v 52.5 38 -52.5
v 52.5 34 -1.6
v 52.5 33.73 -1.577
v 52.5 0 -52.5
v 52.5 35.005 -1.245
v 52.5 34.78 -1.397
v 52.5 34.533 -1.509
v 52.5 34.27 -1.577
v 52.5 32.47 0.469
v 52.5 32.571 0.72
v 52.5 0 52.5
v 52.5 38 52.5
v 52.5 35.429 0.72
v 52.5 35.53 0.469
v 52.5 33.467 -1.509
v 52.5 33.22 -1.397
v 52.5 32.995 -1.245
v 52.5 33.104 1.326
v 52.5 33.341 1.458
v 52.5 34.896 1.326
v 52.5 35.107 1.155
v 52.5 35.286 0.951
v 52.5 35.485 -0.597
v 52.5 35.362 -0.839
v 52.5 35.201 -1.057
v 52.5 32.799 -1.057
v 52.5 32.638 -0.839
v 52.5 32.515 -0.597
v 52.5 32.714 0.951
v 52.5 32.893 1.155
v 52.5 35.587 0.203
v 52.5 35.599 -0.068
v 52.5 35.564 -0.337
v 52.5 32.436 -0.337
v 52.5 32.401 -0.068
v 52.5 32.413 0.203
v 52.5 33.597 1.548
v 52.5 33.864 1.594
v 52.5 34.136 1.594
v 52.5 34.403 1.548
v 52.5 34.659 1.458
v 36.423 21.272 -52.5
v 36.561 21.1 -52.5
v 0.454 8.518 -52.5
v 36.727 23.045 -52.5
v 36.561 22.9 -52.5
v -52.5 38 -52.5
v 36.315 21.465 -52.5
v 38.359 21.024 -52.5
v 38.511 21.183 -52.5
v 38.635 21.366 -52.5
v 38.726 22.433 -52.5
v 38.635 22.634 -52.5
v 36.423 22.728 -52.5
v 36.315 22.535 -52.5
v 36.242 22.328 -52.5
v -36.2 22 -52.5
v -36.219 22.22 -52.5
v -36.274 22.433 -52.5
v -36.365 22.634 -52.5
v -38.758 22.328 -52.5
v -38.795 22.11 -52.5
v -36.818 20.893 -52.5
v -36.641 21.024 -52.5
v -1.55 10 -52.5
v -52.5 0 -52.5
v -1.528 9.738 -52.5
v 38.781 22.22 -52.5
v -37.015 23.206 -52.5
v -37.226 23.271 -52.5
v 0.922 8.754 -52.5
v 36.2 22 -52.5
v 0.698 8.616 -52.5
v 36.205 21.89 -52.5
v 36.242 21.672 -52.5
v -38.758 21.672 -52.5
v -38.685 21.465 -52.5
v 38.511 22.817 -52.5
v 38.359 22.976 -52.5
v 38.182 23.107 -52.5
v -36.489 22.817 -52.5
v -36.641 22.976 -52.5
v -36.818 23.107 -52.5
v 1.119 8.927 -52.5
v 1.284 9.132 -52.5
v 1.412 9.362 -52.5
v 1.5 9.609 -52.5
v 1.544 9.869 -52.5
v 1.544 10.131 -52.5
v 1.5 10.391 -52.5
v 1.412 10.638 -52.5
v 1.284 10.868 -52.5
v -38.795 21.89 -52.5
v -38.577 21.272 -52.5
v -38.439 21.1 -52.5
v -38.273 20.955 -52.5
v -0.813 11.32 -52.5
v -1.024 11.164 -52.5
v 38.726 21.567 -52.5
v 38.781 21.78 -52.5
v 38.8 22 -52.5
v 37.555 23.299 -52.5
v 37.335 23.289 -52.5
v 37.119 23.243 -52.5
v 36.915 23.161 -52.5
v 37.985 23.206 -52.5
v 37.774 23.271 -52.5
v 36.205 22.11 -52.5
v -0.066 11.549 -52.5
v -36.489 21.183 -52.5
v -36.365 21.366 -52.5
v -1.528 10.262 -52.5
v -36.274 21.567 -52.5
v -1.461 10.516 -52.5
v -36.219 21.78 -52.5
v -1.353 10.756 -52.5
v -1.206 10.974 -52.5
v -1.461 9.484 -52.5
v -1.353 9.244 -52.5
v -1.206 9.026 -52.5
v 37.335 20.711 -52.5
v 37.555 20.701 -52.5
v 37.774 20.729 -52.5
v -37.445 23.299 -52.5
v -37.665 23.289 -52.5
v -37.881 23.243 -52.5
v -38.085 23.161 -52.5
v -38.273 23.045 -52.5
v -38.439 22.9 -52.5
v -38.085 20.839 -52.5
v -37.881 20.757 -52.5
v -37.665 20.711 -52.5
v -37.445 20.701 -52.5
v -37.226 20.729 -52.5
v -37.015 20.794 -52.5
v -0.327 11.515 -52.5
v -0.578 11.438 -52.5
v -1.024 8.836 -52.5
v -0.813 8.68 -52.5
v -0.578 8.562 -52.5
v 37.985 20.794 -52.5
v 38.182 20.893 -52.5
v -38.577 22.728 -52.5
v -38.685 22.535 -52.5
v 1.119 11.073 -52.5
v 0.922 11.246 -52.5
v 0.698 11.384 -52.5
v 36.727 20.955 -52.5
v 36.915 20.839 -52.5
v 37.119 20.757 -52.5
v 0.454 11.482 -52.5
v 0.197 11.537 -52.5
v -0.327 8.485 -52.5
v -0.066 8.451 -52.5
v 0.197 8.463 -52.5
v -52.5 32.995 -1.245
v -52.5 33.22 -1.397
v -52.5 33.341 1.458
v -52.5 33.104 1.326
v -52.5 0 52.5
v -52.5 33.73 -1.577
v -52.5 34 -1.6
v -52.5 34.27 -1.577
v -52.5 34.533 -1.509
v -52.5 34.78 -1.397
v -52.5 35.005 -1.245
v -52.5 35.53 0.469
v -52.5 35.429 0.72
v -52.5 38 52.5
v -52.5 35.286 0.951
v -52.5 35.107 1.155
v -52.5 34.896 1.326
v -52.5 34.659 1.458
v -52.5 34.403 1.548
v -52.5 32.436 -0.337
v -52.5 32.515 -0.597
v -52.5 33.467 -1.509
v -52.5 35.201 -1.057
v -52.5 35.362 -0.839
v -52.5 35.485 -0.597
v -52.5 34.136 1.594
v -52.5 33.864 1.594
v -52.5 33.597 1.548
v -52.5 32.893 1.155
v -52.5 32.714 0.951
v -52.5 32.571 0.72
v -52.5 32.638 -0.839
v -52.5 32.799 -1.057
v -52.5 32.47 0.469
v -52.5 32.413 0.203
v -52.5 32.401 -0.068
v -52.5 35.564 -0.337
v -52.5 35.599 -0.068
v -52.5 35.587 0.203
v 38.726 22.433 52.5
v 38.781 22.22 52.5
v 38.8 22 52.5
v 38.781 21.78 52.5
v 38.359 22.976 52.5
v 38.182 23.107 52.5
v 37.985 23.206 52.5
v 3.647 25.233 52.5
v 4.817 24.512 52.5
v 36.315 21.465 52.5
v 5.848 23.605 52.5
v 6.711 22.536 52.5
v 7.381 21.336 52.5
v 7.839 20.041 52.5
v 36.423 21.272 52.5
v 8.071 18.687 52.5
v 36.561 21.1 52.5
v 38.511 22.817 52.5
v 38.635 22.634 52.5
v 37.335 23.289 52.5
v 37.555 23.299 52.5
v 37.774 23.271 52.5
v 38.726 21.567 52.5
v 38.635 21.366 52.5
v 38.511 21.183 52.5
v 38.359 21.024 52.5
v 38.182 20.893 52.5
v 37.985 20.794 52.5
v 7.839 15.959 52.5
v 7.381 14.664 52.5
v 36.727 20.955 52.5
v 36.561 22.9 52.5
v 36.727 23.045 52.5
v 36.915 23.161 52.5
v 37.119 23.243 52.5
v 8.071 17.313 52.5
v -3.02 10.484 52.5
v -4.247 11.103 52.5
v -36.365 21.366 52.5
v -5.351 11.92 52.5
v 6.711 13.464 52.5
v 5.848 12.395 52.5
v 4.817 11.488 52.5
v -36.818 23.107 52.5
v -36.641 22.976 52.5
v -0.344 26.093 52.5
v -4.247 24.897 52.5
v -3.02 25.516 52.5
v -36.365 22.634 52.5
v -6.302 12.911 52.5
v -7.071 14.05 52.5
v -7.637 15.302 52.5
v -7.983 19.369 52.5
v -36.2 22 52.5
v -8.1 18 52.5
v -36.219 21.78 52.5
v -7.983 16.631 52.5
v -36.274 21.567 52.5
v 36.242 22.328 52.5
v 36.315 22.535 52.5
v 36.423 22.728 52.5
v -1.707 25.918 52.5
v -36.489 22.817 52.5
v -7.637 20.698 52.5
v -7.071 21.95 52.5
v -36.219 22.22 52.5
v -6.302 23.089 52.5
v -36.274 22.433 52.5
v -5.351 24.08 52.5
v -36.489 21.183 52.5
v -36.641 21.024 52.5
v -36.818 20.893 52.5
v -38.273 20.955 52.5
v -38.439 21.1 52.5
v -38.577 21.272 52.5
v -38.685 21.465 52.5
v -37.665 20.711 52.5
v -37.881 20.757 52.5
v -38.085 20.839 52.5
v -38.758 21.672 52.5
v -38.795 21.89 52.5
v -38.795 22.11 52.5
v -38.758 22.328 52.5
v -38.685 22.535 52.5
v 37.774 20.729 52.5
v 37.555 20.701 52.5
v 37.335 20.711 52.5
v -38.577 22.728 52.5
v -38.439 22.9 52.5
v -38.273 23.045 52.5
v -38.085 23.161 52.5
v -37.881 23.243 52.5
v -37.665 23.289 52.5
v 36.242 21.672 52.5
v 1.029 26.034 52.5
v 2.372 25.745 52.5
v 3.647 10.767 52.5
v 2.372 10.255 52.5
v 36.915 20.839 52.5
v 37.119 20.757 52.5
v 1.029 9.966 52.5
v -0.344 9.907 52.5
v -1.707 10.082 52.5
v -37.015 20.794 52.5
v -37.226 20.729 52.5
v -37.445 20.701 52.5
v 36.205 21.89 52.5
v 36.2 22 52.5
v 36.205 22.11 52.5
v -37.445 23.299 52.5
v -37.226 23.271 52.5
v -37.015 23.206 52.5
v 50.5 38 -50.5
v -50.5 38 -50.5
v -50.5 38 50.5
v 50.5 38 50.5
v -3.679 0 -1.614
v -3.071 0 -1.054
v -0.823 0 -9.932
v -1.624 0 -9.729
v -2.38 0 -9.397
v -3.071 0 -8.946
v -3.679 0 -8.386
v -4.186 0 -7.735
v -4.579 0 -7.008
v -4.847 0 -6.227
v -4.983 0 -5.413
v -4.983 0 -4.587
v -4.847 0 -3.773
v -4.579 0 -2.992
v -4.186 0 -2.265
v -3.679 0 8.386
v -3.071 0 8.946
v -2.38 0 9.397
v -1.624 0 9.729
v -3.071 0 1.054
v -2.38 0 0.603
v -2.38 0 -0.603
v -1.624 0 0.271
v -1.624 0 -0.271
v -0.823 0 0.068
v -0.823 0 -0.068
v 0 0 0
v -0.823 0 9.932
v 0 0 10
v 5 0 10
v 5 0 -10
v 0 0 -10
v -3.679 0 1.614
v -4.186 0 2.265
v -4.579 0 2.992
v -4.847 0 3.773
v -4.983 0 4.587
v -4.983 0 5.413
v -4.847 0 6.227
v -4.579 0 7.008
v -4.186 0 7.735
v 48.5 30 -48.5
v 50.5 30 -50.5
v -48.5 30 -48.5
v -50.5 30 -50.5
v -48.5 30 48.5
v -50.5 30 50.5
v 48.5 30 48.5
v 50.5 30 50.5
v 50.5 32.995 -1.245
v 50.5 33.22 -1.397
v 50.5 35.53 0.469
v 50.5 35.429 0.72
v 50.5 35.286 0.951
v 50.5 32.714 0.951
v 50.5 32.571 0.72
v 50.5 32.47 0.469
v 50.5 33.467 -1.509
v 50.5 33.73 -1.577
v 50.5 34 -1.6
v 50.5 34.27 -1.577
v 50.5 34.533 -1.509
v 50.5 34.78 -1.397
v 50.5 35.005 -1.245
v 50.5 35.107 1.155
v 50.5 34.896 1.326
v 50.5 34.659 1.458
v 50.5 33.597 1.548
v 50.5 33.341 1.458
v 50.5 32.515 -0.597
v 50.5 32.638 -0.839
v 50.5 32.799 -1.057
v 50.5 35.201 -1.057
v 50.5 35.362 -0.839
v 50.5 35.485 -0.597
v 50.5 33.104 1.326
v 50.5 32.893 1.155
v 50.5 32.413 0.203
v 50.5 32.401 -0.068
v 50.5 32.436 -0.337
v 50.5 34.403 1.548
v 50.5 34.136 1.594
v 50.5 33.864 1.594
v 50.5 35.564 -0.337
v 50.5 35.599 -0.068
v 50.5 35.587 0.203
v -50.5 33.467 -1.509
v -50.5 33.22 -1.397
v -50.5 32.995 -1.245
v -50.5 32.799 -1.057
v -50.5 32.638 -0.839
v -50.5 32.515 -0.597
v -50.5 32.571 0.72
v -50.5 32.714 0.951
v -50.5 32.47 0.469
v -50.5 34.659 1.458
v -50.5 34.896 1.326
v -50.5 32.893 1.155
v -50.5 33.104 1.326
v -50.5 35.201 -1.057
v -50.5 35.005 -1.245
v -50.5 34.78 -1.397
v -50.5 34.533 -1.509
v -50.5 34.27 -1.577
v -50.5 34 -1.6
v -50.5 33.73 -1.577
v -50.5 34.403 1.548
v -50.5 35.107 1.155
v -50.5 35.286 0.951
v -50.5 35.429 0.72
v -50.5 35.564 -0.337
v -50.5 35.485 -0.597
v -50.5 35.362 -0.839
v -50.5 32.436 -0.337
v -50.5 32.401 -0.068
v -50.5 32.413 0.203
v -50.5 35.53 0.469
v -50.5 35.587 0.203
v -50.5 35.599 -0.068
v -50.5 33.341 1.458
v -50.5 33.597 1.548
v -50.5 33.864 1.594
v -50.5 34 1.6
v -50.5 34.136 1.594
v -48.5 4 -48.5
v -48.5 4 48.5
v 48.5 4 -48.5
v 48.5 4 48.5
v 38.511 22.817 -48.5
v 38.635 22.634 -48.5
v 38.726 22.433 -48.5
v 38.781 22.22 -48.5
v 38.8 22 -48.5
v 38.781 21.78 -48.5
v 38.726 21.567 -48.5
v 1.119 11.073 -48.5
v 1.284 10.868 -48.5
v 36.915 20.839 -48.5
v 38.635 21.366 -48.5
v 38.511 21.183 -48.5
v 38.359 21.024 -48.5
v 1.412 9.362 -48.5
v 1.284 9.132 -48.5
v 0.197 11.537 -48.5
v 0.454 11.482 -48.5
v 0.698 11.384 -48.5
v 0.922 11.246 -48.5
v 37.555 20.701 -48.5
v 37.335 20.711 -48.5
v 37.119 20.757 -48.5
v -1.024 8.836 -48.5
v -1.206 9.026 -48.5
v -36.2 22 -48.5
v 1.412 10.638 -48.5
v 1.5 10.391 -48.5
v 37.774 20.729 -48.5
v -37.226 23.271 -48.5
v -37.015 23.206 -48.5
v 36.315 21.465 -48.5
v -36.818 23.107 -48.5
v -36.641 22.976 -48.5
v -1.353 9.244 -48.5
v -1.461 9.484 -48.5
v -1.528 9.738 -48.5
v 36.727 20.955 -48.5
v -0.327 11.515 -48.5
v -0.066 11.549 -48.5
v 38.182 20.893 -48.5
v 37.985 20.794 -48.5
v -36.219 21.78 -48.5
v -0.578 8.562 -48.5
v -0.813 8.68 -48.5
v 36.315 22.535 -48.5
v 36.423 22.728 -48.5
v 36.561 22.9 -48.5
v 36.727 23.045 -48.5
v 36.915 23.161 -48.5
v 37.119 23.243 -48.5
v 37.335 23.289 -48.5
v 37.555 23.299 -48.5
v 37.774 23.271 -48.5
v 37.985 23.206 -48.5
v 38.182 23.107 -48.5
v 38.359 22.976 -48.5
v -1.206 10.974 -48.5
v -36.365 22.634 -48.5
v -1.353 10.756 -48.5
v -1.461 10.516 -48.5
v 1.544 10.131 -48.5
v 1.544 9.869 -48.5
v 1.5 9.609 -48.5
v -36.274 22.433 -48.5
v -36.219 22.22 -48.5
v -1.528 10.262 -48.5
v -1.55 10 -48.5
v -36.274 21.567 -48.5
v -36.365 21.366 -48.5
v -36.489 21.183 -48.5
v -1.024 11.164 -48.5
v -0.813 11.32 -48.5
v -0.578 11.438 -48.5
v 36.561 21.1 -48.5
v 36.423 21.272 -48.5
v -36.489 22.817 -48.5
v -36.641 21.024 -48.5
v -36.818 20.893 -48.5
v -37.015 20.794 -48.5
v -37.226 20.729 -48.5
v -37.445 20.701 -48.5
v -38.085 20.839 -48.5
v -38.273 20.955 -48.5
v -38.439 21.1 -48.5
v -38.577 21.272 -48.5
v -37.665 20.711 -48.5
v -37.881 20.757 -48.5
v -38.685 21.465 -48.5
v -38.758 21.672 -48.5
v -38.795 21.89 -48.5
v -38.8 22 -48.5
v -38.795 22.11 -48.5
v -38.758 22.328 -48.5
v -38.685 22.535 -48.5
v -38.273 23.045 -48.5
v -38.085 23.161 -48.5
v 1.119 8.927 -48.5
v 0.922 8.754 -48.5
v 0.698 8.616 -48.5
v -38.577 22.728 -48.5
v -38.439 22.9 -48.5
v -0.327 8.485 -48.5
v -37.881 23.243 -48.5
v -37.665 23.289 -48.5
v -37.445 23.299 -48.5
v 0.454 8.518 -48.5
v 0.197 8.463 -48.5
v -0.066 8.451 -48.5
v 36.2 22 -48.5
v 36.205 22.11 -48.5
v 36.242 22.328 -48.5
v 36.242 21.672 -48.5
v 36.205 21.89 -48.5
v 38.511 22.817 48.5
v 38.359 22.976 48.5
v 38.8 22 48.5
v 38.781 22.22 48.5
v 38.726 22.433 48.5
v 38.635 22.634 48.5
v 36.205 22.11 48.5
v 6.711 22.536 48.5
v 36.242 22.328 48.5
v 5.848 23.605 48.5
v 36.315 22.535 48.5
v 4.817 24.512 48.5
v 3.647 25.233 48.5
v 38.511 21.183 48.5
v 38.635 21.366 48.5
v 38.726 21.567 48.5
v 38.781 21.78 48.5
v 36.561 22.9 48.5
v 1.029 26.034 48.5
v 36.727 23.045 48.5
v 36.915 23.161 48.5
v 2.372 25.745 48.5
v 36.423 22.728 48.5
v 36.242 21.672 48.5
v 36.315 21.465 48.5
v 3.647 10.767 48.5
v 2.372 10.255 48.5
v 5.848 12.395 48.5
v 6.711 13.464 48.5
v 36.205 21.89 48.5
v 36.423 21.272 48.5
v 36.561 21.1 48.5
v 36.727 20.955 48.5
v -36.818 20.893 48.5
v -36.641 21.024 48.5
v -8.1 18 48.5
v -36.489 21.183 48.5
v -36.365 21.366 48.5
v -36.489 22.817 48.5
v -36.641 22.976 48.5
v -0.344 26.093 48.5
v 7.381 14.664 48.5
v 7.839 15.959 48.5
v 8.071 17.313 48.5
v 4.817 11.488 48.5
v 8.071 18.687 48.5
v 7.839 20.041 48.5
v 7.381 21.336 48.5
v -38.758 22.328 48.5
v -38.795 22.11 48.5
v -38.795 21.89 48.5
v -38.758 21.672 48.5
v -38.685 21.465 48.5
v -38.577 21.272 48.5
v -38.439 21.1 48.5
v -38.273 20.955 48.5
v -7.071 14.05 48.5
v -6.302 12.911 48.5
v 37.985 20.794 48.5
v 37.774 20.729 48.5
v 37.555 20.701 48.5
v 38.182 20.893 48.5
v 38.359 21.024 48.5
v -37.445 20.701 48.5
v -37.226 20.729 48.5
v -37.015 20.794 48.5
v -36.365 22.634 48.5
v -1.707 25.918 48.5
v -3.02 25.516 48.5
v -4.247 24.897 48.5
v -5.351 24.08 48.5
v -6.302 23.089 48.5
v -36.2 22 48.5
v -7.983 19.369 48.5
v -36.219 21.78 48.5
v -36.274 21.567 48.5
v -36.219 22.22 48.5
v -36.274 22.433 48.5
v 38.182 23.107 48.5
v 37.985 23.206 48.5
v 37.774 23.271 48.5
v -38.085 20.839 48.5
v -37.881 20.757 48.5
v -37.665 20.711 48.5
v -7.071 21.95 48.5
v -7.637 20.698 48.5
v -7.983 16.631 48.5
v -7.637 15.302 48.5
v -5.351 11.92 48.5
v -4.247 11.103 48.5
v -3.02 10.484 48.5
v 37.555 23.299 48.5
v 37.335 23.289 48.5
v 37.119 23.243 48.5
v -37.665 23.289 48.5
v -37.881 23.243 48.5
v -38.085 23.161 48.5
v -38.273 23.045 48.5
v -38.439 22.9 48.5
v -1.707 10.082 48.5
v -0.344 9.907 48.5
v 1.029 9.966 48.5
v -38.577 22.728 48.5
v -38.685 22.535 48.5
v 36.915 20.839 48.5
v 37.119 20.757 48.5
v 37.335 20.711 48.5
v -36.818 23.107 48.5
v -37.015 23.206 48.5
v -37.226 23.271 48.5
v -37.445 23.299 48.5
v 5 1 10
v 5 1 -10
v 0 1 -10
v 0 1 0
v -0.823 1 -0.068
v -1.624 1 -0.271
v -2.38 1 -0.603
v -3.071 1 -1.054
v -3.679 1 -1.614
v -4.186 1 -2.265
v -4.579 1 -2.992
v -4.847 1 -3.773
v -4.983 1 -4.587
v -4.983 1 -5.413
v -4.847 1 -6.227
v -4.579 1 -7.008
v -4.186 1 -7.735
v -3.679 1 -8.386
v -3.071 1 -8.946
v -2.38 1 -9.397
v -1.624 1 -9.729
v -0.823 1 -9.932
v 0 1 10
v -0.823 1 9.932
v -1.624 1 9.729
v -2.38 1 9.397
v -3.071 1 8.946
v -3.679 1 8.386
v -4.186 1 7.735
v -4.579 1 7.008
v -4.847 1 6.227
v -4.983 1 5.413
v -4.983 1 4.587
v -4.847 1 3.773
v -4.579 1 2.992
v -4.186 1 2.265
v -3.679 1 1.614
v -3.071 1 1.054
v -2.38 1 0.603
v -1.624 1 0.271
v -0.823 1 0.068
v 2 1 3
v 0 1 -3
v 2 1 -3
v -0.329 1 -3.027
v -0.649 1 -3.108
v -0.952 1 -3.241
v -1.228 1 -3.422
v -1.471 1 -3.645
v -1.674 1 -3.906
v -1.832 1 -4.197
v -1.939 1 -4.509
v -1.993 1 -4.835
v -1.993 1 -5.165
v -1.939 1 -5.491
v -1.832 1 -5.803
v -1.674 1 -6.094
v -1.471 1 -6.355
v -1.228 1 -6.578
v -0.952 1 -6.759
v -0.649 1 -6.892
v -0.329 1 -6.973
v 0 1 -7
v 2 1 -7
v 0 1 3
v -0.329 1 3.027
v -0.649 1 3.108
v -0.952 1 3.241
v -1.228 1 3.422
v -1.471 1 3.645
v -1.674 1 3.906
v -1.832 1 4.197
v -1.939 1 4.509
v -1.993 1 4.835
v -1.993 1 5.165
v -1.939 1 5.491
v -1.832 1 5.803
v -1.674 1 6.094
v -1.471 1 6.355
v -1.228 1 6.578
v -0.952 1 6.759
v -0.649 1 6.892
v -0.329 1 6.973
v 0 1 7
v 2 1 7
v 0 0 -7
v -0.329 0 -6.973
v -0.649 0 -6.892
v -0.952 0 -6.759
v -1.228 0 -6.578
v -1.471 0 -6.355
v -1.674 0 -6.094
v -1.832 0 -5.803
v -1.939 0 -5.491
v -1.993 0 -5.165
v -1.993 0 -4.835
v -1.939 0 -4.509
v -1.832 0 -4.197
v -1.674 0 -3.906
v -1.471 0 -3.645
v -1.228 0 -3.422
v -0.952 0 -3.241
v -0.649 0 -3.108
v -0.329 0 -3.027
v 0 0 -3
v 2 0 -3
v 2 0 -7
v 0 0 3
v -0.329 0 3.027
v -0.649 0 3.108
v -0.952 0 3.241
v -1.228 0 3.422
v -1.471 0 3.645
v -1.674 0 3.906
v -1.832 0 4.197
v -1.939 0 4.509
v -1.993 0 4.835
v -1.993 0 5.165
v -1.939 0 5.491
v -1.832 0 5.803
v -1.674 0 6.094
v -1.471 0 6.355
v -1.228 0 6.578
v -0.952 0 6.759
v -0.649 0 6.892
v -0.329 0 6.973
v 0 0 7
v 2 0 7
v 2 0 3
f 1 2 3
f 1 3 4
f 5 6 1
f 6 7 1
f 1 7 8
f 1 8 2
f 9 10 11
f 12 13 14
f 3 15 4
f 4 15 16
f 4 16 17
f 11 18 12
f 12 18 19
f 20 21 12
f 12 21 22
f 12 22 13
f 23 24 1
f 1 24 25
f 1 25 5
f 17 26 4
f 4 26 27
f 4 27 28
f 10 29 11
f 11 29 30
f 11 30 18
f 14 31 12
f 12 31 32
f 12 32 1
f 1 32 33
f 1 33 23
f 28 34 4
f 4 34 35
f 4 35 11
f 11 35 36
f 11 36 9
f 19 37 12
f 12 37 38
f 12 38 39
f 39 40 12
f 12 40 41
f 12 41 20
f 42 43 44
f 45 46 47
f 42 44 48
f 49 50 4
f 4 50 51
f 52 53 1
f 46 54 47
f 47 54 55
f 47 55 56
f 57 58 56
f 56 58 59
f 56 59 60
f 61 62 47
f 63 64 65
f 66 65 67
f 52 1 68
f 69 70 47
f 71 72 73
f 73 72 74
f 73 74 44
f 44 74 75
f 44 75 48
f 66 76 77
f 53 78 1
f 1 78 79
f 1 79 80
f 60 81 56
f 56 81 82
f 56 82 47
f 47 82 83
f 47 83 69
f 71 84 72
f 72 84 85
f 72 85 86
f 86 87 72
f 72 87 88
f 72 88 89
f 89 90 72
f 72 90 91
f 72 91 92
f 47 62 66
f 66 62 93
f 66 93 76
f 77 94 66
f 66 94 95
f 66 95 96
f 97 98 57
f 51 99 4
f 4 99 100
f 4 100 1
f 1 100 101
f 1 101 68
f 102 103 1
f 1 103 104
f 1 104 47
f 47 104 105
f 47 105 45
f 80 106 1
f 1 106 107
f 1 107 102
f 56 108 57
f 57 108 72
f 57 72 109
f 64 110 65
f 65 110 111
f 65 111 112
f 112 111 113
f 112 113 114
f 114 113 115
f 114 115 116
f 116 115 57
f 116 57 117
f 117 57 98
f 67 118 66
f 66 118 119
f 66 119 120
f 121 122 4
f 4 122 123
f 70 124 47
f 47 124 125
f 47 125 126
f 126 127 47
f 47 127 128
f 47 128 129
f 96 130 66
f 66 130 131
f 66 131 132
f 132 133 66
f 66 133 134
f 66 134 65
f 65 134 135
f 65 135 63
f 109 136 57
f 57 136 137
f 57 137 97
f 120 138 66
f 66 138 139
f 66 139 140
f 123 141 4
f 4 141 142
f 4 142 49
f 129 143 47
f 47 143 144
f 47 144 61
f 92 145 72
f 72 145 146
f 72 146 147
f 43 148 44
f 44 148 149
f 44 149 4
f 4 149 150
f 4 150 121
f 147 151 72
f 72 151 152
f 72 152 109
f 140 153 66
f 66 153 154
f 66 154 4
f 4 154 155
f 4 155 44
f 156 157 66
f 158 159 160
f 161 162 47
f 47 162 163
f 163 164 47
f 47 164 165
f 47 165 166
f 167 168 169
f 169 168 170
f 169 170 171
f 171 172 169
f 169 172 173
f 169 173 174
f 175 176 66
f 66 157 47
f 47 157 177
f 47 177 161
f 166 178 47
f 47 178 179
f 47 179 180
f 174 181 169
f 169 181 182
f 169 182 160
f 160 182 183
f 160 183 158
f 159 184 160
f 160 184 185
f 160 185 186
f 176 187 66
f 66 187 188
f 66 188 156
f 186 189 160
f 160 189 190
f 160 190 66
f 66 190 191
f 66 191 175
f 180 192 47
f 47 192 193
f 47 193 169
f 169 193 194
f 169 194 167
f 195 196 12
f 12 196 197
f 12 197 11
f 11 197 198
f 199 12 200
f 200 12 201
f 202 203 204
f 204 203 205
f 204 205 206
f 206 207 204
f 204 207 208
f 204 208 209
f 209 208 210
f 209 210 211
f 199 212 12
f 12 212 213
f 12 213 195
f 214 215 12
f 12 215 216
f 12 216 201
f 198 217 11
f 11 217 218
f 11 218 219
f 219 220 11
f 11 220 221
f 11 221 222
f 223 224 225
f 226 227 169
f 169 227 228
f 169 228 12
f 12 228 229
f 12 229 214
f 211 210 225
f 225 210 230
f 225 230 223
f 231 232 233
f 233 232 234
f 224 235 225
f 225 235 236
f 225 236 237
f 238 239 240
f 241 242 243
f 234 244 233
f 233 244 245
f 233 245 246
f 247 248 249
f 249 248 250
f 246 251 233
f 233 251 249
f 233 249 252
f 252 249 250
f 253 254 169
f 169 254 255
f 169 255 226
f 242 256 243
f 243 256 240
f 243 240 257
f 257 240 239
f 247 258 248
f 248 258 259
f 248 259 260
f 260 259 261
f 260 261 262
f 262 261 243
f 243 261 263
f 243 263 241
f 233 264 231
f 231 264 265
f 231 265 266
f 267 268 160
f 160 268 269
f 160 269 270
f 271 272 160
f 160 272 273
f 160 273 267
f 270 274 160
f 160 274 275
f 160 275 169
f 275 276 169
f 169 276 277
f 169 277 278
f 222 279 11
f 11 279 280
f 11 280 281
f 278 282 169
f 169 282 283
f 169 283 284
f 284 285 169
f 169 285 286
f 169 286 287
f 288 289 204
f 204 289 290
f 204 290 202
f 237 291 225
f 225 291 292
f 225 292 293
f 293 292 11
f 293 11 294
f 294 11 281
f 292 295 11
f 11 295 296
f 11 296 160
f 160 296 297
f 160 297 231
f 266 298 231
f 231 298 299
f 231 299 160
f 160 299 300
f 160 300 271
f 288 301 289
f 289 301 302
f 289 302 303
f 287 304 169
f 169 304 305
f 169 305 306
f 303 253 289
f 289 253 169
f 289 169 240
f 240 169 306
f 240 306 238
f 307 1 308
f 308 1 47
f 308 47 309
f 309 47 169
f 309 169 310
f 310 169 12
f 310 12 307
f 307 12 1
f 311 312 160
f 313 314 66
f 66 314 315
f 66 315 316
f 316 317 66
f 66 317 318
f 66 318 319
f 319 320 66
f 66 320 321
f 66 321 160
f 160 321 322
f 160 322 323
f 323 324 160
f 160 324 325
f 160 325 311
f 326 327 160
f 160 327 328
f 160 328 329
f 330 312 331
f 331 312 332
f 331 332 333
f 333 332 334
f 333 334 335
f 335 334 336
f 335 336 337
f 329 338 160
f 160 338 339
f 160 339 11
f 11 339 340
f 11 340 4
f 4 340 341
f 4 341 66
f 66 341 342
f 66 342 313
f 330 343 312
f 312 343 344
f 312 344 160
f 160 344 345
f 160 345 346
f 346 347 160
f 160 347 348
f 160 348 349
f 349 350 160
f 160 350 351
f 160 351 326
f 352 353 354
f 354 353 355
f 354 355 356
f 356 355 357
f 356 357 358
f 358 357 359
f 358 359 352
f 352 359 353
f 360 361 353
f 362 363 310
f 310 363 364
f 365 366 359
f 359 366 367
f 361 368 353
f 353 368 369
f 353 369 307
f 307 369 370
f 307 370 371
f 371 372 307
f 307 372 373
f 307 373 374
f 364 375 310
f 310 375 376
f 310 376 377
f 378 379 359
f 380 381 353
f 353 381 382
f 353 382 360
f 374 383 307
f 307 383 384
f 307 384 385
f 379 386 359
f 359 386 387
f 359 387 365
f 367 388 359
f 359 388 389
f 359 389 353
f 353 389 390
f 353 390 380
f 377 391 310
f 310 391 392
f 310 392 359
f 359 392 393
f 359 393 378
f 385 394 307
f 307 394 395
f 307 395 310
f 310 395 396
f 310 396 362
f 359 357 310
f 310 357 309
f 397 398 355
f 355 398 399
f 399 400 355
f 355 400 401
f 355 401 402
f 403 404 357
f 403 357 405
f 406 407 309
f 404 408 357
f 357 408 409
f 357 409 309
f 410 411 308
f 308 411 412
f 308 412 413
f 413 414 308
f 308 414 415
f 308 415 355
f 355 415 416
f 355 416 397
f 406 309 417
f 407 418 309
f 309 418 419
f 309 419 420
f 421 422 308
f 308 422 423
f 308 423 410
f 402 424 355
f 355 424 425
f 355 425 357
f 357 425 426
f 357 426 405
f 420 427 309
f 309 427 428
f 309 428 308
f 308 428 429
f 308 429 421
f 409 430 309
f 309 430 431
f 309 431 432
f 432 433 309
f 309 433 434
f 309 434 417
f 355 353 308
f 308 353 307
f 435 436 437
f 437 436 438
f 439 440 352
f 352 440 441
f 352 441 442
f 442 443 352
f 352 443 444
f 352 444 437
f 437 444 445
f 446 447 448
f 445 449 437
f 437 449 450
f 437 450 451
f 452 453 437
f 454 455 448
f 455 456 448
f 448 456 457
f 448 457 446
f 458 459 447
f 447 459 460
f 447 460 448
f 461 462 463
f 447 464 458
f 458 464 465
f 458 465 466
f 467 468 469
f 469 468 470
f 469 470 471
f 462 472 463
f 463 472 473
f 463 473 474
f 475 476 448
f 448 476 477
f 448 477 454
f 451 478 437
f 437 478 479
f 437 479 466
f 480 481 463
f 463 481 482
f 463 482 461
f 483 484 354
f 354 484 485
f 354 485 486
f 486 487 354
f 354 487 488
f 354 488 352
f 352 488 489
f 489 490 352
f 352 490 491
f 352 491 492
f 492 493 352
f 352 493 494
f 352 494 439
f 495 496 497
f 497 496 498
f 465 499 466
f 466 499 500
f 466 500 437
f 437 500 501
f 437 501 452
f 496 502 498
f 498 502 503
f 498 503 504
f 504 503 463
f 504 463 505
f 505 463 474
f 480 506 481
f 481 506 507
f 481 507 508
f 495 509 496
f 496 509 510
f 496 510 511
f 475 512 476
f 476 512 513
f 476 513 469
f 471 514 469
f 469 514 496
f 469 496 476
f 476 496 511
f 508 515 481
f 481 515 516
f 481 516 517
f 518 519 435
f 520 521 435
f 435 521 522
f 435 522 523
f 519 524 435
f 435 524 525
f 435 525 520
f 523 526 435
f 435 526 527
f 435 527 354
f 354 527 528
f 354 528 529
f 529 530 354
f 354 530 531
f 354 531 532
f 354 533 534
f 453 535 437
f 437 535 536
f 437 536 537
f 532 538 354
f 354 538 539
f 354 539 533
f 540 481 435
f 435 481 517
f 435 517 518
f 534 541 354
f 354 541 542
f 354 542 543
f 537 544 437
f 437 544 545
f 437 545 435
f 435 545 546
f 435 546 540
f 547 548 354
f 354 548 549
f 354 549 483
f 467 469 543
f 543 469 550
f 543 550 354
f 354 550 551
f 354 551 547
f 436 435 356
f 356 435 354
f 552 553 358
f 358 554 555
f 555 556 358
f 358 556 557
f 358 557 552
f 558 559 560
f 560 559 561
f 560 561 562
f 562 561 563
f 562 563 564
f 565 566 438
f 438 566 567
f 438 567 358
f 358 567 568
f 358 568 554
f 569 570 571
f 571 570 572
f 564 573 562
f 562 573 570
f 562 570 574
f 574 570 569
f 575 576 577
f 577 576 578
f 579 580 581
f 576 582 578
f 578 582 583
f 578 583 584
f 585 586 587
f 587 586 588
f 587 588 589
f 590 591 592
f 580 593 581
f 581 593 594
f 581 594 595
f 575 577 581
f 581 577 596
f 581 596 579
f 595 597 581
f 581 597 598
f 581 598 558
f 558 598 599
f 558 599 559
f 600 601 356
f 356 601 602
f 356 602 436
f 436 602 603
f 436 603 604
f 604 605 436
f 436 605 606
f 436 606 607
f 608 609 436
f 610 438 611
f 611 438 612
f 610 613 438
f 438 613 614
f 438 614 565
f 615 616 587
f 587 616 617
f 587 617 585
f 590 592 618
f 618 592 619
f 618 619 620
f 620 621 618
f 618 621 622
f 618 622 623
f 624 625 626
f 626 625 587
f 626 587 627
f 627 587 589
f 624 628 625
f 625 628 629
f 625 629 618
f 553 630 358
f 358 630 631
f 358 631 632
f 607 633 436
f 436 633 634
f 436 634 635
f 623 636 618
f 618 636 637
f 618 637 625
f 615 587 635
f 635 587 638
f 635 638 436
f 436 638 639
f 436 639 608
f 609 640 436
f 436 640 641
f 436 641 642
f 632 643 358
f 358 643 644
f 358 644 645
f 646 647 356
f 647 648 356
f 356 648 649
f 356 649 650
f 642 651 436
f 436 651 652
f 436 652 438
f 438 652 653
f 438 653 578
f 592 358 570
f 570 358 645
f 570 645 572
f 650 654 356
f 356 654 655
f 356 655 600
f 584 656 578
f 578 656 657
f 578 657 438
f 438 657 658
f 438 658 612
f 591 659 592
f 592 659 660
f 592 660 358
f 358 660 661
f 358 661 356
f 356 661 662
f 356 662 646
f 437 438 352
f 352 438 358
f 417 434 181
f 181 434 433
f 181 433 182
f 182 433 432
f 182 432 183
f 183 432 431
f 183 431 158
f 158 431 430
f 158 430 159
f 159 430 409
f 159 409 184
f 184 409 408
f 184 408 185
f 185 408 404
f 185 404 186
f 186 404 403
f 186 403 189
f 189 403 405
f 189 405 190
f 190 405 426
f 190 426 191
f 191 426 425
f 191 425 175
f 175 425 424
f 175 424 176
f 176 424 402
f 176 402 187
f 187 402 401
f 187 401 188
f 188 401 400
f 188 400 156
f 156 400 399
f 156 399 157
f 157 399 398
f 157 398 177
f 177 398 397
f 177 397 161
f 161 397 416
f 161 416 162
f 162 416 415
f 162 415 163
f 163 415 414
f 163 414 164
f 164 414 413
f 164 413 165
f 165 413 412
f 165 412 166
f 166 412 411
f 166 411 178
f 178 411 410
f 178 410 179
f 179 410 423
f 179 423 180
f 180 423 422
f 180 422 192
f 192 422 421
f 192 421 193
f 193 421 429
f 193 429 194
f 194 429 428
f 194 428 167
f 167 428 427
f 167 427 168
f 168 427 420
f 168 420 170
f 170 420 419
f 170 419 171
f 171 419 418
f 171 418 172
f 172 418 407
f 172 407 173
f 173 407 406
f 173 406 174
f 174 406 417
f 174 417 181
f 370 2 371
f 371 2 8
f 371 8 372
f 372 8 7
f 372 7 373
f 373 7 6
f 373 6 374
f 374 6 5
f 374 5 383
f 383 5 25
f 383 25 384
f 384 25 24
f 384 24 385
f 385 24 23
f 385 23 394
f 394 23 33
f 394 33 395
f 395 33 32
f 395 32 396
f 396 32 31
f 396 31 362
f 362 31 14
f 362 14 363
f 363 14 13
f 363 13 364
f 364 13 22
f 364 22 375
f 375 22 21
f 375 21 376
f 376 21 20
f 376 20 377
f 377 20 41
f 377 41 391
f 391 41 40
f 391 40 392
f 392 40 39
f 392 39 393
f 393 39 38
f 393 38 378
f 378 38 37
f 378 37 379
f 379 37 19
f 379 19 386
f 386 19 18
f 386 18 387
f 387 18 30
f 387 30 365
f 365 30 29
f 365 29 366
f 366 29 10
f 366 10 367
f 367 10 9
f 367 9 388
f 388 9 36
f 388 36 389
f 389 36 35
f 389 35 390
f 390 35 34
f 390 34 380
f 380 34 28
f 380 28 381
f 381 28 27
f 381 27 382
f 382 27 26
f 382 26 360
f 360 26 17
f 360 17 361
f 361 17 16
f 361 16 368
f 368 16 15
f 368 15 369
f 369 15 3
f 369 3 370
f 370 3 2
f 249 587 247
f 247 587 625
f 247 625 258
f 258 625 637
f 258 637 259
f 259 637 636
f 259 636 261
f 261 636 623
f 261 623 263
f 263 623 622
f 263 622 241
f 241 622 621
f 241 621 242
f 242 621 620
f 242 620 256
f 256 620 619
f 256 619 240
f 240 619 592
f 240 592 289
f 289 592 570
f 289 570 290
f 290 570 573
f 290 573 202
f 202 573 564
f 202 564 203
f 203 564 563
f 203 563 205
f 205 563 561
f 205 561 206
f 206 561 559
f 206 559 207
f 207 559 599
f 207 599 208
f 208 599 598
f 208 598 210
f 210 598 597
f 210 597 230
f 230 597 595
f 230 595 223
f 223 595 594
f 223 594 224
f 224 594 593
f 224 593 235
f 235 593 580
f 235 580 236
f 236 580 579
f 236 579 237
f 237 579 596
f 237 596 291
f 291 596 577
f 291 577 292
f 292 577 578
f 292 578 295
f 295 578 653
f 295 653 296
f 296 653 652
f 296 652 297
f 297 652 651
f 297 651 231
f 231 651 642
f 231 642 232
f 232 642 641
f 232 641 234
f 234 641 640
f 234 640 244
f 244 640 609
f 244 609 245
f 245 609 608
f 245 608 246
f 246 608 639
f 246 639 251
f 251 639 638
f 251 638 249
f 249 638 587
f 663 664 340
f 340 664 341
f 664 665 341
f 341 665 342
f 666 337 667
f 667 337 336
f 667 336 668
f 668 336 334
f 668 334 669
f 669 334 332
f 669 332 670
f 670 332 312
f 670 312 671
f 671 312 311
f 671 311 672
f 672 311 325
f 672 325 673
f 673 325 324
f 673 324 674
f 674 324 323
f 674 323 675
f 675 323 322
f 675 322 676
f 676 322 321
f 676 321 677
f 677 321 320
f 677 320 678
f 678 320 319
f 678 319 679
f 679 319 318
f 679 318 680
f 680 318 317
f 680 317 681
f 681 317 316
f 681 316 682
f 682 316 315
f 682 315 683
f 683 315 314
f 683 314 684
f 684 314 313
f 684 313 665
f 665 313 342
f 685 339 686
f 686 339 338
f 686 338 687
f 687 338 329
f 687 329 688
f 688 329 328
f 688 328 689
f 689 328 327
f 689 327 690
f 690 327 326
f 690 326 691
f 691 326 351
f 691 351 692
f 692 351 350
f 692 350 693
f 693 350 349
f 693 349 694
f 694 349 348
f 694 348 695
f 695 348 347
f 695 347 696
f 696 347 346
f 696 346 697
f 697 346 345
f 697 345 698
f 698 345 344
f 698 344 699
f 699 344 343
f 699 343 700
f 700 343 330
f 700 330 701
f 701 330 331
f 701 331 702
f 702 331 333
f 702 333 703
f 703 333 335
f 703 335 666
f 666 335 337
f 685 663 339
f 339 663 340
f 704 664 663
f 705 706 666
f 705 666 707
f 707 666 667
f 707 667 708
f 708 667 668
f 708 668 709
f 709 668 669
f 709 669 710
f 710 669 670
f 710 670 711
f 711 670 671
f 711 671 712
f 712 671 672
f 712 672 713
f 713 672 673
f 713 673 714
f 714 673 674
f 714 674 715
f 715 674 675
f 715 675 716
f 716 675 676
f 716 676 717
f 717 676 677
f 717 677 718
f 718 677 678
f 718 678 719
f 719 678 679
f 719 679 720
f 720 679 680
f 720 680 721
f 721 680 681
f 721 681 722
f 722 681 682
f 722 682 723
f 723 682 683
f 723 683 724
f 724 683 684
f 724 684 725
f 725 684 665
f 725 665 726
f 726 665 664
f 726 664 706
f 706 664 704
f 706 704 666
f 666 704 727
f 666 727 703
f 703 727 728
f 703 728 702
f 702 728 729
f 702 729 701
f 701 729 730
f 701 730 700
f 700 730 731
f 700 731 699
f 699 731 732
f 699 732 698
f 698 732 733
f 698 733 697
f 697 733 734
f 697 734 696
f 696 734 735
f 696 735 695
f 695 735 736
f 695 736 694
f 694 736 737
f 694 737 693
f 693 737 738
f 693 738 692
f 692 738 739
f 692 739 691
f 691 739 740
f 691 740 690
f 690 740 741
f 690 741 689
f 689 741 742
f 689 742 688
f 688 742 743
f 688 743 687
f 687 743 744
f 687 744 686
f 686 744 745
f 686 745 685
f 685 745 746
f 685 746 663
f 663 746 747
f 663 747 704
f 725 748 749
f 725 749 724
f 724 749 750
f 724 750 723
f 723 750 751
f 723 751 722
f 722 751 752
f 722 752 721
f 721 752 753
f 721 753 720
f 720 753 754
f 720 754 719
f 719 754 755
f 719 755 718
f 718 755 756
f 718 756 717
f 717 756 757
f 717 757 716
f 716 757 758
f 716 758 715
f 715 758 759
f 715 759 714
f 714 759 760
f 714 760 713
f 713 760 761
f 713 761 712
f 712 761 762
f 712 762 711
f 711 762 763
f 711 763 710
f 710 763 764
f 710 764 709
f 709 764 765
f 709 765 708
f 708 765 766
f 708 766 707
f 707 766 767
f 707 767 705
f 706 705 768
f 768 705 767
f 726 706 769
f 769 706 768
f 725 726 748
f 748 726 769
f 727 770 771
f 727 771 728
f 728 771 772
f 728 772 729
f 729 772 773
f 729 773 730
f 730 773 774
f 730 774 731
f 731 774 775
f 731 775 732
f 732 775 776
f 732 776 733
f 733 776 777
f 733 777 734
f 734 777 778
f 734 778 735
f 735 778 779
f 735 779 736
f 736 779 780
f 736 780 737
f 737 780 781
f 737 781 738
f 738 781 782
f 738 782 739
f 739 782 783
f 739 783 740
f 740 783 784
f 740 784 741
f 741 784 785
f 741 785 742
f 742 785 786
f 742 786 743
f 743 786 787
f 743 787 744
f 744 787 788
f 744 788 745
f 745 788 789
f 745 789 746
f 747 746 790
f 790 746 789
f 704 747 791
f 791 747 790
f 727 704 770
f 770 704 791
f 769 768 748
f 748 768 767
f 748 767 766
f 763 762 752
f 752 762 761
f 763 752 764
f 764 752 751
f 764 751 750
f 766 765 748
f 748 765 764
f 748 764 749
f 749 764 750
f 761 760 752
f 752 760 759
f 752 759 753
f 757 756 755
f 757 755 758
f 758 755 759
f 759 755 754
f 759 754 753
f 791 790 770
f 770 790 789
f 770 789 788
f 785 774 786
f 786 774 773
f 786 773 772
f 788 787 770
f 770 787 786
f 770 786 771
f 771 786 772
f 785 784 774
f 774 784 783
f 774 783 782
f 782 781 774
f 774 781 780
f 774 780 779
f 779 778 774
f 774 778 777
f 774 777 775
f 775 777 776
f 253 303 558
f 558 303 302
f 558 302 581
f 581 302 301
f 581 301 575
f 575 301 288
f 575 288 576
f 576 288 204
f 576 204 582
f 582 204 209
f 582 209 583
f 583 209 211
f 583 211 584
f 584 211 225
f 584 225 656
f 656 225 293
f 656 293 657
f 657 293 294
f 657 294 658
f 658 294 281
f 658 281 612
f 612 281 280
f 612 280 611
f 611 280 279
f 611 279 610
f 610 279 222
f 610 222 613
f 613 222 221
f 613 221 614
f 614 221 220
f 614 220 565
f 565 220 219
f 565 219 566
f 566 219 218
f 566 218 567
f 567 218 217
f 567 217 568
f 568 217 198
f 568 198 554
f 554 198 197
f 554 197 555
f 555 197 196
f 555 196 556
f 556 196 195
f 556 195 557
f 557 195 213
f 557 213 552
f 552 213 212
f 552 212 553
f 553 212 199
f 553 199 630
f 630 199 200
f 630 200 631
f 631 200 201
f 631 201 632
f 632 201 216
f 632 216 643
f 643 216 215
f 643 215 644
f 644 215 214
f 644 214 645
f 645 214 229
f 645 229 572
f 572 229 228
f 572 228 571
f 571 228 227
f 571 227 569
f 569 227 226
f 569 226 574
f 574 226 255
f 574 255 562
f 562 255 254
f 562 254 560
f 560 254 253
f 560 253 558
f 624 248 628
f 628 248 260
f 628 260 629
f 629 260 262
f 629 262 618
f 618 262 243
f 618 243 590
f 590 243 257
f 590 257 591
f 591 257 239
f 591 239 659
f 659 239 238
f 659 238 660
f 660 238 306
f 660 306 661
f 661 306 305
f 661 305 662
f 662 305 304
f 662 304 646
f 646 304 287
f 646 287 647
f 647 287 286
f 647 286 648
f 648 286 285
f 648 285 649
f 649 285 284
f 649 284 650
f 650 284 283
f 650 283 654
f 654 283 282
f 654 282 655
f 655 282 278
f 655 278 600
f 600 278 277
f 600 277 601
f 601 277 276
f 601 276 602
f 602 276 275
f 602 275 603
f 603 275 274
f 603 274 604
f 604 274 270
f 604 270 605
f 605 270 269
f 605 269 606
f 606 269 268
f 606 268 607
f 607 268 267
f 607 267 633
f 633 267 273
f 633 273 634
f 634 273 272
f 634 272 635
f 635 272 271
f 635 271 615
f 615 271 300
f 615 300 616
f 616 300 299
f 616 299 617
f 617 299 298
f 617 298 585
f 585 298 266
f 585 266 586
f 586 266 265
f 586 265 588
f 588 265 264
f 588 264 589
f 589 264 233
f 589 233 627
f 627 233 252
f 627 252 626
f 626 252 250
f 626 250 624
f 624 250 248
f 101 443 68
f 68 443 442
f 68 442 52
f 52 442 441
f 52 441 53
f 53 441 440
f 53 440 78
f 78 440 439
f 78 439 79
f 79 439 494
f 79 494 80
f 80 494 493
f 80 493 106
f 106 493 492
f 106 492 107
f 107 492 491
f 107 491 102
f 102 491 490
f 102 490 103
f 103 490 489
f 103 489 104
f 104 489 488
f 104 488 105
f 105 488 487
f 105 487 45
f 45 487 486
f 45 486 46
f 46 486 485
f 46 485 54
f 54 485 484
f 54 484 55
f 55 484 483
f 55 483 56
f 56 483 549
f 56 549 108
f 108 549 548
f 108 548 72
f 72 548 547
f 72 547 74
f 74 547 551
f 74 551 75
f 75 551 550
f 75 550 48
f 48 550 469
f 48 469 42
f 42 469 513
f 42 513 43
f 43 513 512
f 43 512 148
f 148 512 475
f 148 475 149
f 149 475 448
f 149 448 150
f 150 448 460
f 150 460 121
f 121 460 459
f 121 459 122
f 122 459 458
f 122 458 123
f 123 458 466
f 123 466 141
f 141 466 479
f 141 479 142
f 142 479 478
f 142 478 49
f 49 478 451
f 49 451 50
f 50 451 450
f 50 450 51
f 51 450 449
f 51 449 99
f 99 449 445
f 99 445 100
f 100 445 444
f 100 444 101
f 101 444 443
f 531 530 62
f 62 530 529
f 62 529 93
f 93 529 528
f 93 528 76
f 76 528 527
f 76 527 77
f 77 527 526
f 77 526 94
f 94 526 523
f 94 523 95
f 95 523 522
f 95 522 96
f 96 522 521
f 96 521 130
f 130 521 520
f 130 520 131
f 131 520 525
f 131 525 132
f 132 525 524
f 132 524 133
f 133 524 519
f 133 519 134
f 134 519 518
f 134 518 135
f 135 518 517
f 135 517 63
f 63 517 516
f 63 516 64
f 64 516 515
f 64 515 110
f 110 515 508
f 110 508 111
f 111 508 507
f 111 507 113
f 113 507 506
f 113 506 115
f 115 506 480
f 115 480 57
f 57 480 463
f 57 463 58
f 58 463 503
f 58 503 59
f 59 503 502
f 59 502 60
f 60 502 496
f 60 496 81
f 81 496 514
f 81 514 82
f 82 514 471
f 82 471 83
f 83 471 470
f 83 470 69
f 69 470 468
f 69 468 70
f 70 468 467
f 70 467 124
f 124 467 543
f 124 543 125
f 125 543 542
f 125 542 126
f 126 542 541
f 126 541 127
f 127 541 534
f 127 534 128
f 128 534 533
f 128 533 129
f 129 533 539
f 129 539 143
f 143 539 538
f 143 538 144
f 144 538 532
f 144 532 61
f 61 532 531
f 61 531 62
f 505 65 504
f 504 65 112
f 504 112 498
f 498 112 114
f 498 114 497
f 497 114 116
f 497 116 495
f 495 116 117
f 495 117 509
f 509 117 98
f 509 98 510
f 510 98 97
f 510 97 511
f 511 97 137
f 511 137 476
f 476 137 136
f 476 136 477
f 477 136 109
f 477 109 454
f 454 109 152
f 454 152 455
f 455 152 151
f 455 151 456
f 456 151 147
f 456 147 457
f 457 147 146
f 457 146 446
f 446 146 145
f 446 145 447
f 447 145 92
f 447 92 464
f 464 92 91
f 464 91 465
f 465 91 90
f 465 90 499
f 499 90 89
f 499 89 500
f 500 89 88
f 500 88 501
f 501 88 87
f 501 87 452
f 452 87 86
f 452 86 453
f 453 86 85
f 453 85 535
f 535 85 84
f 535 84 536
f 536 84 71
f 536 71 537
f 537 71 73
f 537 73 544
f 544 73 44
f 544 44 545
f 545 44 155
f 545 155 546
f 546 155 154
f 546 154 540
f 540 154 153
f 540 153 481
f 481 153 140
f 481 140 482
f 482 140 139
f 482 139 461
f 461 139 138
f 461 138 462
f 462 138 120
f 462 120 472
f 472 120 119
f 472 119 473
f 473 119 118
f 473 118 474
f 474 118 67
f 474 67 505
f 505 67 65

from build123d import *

# Parameters (mm, degrees)
SKETCH1_W           = 105
SKETCH1_H           = 105
BOSS_EXTRUDE1_DEPTH = 38
SKETCH2_W           = 97
SKETCH2_H           = 97
CUT_EXTRUDE1_DEPTH  = 34
SKETCH3_W           = 101
SKETCH3_H           = 101
CUT_EXTRUDE2_DEPTH  = 8
SKETCH5_R           = 1.6
CUT_EXTRUDE3_DEPTH  = 106
CUT_EXTRUDE4_REACH  = 6
SKETCH7_R           = 8.1
CUT_EXTRUDE5_DEPTH  = 1
SKETCH11_R          = 1.3
CUT_EXTRUDE6_DEPTH  = 106
CUT_EXTRUDE7_REACH  = 107
SKETCH12_R          = 1.55


with BuildPart() as part:
    # Sketch1 → Boss-Extrude1 (new body)
    with BuildSketch(Plane(origin=(0, 0, 0), x_dir=(1, 0, 0), z_dir=(0, 1, 0))):
        Rectangle(SKETCH1_W, SKETCH1_H)
    extrude(amount=BOSS_EXTRUDE1_DEPTH)

    # Sketch2 → Cut-Extrude1 (cut)
    with BuildSketch(Plane(origin=(0, 38, 0), x_dir=(1, 0, 0), z_dir=(0, 1, 0))):
        Rectangle(SKETCH2_W, SKETCH2_H)
    extrude(amount=-CUT_EXTRUDE1_DEPTH, mode=Mode.SUBTRACT)

    # Sketch3 → Cut-Extrude2 (cut)
    with BuildSketch(Plane(origin=(0, 38, 0), x_dir=(1, 0, 0), z_dir=(0, 1, 0))):
        Rectangle(SKETCH3_W, SKETCH3_H)
    extrude(amount=-CUT_EXTRUDE2_DEPTH, mode=Mode.SUBTRACT)

    # Sketch5 → Cut-Extrude3 (cut, through all)
    with BuildSketch(Plane(origin=(52.5, 0, 0), x_dir=(0, 0, -1), z_dir=(1, 0, 0))):
        with Locations((0, 34)):
            Circle(SKETCH5_R)
    extrude(amount=-CUT_EXTRUDE3_DEPTH, mode=Mode.SUBTRACT)

    # Sketch7 → Cut-Extrude4 (cut, up to next)
    with BuildSketch(Plane(origin=(0, 0, 48.5), x_dir=(-1, 0, 0), z_dir=(0, 0, -1)), mode=Mode.PRIVATE) as cut_extrude4_sk1:
        with Locations((0, 18)):
            Circle(SKETCH7_R)
    cut_extrude4_tool1 = extrude(cut_extrude4_sk1.sketch, amount=-CUT_EXTRUDE4_REACH, mode=Mode.PRIVATE) & part.part
    add(cut_extrude4_tool1.solids().sort_by_distance((0, 18, 48.5))[0], mode=Mode.SUBTRACT)

    # Sketch10 → Cut-Extrude5 (cut)
    with BuildSketch(Plane.XZ):
        with BuildLine():
            Line((5, -10), (0, -10))
            ThreePointArc((0, -10), (-5, -5), (0, 0))
            ThreePointArc((0, 0), (-5, 5), (0, 10))
            Line((0, 10), (5, 10))
            Line((5, 10), (5, -10))
        make_face()
        with BuildLine():
            Line((0, -7), (2, -7))
            Line((2, -7), (2, -3))
            Line((2, -3), (0, -3))
            ThreePointArc((0, -3), (-2, -5), (0, -7))
        make_face(mode=Mode.SUBTRACT)
        with BuildLine():
            Line((0, 3), (2, 3))
            Line((2, 3), (2, 7))
            Line((2, 7), (0, 7))
            ThreePointArc((0, 7), (-2, 5), (0, 3))
        make_face(mode=Mode.SUBTRACT)
    extrude(amount=-CUT_EXTRUDE5_DEPTH, mode=Mode.SUBTRACT)

    # Sketch11 → Cut-Extrude6 (cut, through all)
    with BuildSketch(Plane.XY.offset(52.5)):
        with Locations((-37.5, 22)):
            Circle(SKETCH11_R)
        with Locations((37.5, 22)):
            Circle(SKETCH11_R)
    extrude(amount=-CUT_EXTRUDE6_DEPTH, mode=Mode.SUBTRACT)

    # Sketch12 → Cut-Extrude7 (cut, up to next)
    with BuildSketch(Plane(origin=(0, 0, -52.5), x_dir=(-1, 0, 0), z_dir=(0, 0, -1)), mode=Mode.PRIVATE) as cut_extrude7_sk1:
        with Locations((0, 10)):
            Circle(SKETCH12_R)
    cut_extrude7_tool1 = extrude(cut_extrude7_sk1.sketch, amount=-CUT_EXTRUDE7_REACH, mode=Mode.PRIVATE) & part.part
    add(cut_extrude7_tool1.solids().sort_by_distance((0, 10, -52.5))[0], mode=Mode.SUBTRACT)


solid = part.part
